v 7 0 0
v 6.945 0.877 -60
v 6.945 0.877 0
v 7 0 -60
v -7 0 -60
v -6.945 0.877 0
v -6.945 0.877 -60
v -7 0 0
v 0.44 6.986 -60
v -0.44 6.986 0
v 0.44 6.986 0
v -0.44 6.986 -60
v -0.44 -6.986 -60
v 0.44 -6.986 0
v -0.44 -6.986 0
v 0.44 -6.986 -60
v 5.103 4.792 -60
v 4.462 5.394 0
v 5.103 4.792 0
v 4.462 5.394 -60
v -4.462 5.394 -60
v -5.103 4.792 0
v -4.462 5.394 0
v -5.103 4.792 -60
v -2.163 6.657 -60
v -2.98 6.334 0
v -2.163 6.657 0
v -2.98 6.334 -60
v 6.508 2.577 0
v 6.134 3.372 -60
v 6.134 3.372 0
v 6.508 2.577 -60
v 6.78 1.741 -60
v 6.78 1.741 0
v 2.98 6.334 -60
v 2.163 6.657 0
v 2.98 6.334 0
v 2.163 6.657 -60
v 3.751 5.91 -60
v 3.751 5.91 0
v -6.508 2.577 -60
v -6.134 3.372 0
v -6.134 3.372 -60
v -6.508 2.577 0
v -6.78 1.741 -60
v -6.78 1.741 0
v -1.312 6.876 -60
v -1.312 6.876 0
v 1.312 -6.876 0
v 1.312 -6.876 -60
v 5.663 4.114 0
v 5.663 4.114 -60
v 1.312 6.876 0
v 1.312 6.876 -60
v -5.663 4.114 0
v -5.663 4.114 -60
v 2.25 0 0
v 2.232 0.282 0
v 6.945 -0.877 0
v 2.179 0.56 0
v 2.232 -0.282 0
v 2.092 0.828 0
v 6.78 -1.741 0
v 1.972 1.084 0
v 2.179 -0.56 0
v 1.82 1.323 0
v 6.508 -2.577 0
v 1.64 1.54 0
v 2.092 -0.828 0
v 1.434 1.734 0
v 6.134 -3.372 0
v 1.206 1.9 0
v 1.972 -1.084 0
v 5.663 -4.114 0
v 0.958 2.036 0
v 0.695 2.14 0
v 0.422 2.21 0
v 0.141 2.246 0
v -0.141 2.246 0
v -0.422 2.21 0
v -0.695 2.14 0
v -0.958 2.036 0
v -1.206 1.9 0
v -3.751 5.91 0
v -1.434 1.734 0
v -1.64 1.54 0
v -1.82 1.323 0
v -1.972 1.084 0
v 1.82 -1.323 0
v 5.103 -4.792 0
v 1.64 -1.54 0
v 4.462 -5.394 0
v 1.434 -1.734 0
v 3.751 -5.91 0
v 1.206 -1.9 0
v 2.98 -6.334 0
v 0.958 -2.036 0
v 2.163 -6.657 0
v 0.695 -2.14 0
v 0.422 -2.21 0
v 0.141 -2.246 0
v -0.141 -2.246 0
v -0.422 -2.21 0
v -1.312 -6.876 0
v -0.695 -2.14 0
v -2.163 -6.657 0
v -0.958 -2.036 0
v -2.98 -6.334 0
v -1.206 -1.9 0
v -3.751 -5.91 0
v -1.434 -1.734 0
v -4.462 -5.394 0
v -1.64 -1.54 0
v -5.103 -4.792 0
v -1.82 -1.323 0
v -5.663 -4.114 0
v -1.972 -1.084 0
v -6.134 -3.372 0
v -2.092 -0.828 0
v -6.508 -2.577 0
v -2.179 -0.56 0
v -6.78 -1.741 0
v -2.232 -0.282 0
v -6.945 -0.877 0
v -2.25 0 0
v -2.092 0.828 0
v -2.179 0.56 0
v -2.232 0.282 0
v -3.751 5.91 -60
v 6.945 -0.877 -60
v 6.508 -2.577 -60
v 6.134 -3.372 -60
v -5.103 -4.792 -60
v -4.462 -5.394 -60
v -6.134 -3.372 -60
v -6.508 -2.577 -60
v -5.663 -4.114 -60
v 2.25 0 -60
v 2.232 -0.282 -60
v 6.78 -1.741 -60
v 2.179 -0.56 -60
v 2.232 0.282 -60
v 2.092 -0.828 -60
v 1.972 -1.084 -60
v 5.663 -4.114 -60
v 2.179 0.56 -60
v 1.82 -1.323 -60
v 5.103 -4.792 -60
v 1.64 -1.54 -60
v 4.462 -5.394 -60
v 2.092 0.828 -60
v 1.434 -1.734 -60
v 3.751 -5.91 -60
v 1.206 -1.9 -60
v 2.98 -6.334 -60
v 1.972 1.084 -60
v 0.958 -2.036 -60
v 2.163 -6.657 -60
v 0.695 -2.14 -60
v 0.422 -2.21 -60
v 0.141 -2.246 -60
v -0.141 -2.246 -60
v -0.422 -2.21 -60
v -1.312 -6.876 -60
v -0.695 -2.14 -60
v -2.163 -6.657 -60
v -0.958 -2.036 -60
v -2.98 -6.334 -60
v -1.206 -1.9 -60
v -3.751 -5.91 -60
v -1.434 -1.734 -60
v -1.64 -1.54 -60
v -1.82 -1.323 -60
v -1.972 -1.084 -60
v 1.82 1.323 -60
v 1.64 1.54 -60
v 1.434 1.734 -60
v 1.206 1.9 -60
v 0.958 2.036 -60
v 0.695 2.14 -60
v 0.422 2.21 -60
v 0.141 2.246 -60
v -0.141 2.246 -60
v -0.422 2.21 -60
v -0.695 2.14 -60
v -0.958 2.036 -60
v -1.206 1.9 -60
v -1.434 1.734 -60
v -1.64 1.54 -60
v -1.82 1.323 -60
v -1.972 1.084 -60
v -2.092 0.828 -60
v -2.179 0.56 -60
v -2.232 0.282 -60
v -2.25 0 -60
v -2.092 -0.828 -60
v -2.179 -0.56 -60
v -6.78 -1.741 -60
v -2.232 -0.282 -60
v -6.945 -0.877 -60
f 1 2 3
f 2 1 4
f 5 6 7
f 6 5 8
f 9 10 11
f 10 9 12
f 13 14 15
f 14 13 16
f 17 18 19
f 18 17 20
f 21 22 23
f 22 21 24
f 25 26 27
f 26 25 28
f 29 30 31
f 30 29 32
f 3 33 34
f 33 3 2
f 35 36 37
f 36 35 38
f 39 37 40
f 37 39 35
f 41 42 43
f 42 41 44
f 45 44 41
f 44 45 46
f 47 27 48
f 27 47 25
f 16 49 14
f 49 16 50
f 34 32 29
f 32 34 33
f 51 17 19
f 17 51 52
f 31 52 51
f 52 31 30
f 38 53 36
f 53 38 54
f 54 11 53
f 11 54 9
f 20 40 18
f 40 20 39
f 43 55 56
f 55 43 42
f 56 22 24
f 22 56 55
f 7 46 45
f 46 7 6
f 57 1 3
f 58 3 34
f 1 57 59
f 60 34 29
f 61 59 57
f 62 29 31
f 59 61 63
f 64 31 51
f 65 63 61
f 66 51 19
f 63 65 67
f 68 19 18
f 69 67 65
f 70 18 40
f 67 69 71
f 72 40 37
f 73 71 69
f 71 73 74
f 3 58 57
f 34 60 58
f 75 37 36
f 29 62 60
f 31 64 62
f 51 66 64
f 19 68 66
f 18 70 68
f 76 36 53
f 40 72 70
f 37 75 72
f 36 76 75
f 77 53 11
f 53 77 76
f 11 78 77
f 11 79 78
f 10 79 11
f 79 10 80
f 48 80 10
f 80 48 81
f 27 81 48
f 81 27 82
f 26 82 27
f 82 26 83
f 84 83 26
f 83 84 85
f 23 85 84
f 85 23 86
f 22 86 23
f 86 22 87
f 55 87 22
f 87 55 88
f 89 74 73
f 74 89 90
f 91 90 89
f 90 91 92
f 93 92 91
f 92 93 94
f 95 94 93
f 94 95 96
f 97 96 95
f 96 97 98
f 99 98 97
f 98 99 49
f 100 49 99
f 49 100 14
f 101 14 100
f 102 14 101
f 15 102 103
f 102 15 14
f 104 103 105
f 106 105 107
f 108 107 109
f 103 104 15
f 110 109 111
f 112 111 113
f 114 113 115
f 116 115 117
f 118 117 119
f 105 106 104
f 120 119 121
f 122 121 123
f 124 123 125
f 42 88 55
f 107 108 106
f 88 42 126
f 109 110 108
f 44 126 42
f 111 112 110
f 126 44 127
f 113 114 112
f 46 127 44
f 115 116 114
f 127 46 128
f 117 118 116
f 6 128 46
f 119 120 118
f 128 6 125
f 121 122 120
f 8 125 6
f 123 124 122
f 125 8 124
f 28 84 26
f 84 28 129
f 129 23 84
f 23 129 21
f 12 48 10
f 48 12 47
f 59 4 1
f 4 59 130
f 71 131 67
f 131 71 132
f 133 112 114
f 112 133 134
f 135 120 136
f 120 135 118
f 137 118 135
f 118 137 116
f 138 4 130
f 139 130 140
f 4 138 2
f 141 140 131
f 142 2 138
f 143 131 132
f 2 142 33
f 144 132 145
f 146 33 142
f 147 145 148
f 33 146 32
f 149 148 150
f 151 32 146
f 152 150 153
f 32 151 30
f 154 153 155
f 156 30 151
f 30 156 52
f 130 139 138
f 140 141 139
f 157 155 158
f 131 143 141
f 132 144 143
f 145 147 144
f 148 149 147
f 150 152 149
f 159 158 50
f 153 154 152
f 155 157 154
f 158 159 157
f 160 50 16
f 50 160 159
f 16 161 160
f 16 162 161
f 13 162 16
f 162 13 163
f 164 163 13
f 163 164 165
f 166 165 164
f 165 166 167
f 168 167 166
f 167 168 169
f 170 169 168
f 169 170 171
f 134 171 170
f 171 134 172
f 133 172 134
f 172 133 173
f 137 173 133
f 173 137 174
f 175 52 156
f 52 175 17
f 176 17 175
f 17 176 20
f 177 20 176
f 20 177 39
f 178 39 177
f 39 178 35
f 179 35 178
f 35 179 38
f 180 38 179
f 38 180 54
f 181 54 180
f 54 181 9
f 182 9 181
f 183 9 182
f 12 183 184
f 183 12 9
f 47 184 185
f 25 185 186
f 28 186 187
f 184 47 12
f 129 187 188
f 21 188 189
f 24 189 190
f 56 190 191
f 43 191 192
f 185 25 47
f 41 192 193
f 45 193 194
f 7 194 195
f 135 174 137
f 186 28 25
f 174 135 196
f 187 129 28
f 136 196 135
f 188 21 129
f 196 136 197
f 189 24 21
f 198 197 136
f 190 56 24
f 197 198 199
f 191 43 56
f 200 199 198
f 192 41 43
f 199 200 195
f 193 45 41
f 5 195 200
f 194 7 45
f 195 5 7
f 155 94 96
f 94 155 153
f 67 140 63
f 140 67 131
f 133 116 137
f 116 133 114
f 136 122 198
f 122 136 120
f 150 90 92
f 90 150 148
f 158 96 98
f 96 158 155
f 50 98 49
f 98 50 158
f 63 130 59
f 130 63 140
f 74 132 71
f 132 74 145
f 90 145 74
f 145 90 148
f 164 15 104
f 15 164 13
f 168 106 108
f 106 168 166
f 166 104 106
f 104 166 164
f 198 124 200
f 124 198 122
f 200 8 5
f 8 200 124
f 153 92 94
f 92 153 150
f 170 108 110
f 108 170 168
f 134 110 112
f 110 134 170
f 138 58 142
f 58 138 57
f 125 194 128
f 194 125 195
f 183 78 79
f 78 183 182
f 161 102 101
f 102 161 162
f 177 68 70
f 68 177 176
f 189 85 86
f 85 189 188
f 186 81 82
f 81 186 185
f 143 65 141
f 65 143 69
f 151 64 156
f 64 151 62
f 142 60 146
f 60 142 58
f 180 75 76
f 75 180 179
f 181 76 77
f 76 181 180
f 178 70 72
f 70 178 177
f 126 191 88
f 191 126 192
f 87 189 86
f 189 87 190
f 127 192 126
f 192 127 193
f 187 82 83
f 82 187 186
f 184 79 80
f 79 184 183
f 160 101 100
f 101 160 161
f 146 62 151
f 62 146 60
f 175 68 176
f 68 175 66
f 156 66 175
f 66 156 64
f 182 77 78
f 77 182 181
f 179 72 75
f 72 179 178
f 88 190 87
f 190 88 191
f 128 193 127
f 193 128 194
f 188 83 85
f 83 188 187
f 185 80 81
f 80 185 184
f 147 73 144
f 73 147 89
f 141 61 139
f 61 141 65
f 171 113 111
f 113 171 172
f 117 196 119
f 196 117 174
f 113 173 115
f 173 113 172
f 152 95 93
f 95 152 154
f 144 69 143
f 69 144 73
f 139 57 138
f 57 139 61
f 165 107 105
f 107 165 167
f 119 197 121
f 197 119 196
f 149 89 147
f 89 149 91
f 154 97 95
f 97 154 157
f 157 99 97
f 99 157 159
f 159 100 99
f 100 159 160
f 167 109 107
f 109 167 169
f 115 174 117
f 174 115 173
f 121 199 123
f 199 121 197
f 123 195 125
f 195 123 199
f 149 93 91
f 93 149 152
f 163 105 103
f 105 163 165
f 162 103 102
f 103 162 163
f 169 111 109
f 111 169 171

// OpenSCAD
$fn = 50;


difference() {
	union() {
		translate(v = [0, 0, -60.0000000000]) {
			cylinder(h = 60, r = 7.0000000000);
		}
		cylinder(h = 0, r = 13.0000000000);
	}
	union() {
		#translate(v = [0, 0, -60]) {
			cylinder(h = 60, r = 2.2500000000);
		}
	}
}
